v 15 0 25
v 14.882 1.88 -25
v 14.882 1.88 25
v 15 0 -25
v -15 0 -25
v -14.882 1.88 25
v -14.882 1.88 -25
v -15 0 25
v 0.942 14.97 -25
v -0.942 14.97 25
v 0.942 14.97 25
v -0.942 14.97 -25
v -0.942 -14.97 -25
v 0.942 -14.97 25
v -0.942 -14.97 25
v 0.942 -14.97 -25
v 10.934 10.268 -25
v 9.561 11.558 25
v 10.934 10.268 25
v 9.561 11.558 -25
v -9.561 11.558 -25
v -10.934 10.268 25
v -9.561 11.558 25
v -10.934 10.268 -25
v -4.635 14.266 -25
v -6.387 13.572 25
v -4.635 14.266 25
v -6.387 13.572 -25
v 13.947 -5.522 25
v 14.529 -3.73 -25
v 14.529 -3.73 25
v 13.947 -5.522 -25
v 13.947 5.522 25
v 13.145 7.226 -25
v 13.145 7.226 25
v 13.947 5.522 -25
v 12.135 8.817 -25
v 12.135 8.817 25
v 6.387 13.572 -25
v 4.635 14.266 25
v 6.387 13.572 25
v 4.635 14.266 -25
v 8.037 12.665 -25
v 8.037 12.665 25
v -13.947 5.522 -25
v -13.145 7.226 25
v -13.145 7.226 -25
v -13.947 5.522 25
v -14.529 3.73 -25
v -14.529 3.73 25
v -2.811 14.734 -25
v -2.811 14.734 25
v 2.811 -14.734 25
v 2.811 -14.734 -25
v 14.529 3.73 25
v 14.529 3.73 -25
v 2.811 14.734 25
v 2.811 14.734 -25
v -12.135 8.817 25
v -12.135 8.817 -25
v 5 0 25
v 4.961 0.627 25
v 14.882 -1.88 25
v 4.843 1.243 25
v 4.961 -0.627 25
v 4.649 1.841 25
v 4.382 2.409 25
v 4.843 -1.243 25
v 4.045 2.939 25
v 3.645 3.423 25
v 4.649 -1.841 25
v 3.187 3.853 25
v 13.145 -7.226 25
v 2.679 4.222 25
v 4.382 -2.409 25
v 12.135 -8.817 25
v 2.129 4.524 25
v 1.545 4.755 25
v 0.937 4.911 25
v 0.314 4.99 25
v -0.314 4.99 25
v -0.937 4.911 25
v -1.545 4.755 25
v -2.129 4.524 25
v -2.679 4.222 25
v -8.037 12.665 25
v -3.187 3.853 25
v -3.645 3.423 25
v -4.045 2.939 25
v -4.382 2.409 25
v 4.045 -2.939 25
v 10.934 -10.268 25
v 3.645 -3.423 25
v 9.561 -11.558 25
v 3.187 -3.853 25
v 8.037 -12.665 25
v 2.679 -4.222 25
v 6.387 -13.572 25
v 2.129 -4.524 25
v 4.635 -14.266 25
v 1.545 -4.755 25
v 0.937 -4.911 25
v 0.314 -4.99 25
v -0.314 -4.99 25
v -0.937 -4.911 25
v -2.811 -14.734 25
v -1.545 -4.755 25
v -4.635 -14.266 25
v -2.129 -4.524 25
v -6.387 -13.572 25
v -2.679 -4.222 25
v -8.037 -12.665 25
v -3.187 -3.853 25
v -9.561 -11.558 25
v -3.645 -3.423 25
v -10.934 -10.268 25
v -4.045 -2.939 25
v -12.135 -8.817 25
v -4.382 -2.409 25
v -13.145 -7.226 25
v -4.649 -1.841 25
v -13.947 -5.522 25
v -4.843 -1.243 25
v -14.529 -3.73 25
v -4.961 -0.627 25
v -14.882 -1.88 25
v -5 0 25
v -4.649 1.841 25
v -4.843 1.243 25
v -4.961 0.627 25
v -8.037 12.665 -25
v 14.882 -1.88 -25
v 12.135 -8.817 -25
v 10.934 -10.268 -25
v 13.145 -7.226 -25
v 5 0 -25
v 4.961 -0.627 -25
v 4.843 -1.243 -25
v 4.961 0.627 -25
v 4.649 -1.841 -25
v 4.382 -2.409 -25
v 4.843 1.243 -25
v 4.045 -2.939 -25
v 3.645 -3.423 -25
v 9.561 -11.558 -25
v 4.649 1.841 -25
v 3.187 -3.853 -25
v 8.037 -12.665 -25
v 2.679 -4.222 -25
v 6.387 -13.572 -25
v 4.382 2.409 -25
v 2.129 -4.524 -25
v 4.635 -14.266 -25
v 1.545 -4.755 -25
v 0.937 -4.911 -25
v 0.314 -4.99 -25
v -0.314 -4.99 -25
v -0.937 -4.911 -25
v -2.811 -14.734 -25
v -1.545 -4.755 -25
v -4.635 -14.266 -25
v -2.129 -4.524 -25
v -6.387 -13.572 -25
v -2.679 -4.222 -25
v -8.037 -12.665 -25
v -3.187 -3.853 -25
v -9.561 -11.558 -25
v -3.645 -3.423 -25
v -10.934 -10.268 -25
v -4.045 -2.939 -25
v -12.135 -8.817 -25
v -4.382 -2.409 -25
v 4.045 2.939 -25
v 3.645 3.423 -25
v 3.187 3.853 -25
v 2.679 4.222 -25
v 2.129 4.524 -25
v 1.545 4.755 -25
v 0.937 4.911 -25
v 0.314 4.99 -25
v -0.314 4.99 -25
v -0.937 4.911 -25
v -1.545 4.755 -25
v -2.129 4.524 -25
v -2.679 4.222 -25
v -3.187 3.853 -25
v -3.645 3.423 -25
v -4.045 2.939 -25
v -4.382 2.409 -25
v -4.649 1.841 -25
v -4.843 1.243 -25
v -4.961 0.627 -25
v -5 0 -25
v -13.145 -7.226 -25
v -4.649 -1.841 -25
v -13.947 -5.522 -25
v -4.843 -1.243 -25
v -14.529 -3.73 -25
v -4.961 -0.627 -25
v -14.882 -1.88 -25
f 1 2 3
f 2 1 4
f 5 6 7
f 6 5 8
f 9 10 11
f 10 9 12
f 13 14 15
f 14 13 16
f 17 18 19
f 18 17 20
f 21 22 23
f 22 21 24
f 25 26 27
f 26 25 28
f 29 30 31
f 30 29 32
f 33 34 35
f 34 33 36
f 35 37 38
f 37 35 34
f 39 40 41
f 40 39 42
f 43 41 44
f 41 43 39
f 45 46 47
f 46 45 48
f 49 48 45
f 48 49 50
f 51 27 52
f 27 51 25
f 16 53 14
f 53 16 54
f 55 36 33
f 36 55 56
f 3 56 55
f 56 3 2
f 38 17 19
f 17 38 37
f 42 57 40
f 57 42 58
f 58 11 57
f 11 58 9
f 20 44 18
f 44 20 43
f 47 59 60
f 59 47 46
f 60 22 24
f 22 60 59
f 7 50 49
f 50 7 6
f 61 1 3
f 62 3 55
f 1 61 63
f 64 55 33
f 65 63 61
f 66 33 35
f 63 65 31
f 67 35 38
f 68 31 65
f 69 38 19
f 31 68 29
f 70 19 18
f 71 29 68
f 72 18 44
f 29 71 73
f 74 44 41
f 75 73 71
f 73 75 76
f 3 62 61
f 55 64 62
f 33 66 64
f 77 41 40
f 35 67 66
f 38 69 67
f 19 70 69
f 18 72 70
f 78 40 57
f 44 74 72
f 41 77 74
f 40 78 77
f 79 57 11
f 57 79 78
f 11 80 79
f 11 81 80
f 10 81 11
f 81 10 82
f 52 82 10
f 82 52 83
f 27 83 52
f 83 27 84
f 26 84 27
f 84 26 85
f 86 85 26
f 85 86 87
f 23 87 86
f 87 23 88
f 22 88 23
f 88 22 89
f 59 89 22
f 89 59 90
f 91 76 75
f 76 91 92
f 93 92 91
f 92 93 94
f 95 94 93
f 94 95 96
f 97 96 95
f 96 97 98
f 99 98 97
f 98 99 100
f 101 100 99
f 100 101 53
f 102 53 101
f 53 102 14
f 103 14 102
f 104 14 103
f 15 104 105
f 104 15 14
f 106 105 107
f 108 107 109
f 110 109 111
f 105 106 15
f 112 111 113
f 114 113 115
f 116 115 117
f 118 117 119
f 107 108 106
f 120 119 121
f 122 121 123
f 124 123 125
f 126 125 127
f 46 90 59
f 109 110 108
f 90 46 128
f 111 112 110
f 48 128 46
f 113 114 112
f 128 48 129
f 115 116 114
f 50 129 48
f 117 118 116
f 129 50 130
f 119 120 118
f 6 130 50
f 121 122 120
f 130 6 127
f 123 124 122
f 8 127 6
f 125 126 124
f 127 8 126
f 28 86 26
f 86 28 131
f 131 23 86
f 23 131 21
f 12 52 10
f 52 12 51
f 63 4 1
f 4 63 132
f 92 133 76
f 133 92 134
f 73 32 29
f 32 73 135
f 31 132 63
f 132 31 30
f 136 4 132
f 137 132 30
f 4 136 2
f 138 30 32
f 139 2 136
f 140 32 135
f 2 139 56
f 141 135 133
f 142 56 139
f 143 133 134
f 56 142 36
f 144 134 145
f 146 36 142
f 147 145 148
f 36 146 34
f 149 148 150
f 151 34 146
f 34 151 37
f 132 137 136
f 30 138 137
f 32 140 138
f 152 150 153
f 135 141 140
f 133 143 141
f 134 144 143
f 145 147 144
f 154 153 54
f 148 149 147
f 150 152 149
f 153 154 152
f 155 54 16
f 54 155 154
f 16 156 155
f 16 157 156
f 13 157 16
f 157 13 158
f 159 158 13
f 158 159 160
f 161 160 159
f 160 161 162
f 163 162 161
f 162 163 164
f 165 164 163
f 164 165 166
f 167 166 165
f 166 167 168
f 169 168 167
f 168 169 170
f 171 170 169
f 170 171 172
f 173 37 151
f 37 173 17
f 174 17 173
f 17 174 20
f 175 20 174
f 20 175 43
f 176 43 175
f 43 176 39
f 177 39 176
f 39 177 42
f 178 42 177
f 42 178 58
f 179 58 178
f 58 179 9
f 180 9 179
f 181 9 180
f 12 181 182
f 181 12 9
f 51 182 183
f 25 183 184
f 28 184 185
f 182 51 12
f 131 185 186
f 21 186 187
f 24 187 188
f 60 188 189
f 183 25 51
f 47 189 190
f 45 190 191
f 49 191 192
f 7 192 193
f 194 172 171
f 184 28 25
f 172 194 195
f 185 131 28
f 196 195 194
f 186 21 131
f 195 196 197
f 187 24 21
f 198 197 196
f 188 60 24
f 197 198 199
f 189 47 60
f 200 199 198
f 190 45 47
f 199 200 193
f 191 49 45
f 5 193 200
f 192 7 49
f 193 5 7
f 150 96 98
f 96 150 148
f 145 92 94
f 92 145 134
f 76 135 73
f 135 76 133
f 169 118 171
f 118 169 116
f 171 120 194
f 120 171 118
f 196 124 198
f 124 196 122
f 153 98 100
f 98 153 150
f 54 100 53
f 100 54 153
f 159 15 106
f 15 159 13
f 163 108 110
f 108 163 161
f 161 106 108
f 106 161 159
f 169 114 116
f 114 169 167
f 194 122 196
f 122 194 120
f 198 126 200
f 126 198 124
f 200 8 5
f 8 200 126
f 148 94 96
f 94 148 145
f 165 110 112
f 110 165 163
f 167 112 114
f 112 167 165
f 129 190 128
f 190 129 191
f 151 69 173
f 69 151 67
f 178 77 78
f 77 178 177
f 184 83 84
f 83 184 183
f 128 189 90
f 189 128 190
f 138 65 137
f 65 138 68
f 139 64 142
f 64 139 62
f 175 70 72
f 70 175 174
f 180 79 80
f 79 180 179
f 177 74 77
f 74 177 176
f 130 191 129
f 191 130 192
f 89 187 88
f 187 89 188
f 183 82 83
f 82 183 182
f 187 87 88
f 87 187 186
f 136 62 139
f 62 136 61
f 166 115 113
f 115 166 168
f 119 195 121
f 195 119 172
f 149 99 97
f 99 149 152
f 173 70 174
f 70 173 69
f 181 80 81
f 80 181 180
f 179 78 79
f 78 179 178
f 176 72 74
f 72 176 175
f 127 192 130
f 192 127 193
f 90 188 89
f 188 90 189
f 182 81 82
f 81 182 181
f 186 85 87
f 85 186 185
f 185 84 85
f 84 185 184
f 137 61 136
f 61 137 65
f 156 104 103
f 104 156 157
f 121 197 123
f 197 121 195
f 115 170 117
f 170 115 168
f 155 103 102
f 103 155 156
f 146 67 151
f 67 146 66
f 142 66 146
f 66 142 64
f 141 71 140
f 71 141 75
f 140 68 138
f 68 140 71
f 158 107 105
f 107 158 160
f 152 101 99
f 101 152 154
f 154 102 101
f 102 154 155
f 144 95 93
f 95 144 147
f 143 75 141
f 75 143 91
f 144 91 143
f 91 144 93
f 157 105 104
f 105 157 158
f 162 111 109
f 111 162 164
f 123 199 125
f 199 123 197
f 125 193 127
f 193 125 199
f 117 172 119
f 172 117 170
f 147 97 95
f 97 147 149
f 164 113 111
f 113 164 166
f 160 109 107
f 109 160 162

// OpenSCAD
$fn = 50;


difference() {
	union() {
		translate(v = [0, 0, -25.0000000000]) {
			cylinder(h = 50, r = 15.0000000000);
		}
	}
	union() {
		translate(v = [0, 0, -100.0000000000]) {
			cylinder(h = 200, r = 5.0000000000);
		}
	}
}
